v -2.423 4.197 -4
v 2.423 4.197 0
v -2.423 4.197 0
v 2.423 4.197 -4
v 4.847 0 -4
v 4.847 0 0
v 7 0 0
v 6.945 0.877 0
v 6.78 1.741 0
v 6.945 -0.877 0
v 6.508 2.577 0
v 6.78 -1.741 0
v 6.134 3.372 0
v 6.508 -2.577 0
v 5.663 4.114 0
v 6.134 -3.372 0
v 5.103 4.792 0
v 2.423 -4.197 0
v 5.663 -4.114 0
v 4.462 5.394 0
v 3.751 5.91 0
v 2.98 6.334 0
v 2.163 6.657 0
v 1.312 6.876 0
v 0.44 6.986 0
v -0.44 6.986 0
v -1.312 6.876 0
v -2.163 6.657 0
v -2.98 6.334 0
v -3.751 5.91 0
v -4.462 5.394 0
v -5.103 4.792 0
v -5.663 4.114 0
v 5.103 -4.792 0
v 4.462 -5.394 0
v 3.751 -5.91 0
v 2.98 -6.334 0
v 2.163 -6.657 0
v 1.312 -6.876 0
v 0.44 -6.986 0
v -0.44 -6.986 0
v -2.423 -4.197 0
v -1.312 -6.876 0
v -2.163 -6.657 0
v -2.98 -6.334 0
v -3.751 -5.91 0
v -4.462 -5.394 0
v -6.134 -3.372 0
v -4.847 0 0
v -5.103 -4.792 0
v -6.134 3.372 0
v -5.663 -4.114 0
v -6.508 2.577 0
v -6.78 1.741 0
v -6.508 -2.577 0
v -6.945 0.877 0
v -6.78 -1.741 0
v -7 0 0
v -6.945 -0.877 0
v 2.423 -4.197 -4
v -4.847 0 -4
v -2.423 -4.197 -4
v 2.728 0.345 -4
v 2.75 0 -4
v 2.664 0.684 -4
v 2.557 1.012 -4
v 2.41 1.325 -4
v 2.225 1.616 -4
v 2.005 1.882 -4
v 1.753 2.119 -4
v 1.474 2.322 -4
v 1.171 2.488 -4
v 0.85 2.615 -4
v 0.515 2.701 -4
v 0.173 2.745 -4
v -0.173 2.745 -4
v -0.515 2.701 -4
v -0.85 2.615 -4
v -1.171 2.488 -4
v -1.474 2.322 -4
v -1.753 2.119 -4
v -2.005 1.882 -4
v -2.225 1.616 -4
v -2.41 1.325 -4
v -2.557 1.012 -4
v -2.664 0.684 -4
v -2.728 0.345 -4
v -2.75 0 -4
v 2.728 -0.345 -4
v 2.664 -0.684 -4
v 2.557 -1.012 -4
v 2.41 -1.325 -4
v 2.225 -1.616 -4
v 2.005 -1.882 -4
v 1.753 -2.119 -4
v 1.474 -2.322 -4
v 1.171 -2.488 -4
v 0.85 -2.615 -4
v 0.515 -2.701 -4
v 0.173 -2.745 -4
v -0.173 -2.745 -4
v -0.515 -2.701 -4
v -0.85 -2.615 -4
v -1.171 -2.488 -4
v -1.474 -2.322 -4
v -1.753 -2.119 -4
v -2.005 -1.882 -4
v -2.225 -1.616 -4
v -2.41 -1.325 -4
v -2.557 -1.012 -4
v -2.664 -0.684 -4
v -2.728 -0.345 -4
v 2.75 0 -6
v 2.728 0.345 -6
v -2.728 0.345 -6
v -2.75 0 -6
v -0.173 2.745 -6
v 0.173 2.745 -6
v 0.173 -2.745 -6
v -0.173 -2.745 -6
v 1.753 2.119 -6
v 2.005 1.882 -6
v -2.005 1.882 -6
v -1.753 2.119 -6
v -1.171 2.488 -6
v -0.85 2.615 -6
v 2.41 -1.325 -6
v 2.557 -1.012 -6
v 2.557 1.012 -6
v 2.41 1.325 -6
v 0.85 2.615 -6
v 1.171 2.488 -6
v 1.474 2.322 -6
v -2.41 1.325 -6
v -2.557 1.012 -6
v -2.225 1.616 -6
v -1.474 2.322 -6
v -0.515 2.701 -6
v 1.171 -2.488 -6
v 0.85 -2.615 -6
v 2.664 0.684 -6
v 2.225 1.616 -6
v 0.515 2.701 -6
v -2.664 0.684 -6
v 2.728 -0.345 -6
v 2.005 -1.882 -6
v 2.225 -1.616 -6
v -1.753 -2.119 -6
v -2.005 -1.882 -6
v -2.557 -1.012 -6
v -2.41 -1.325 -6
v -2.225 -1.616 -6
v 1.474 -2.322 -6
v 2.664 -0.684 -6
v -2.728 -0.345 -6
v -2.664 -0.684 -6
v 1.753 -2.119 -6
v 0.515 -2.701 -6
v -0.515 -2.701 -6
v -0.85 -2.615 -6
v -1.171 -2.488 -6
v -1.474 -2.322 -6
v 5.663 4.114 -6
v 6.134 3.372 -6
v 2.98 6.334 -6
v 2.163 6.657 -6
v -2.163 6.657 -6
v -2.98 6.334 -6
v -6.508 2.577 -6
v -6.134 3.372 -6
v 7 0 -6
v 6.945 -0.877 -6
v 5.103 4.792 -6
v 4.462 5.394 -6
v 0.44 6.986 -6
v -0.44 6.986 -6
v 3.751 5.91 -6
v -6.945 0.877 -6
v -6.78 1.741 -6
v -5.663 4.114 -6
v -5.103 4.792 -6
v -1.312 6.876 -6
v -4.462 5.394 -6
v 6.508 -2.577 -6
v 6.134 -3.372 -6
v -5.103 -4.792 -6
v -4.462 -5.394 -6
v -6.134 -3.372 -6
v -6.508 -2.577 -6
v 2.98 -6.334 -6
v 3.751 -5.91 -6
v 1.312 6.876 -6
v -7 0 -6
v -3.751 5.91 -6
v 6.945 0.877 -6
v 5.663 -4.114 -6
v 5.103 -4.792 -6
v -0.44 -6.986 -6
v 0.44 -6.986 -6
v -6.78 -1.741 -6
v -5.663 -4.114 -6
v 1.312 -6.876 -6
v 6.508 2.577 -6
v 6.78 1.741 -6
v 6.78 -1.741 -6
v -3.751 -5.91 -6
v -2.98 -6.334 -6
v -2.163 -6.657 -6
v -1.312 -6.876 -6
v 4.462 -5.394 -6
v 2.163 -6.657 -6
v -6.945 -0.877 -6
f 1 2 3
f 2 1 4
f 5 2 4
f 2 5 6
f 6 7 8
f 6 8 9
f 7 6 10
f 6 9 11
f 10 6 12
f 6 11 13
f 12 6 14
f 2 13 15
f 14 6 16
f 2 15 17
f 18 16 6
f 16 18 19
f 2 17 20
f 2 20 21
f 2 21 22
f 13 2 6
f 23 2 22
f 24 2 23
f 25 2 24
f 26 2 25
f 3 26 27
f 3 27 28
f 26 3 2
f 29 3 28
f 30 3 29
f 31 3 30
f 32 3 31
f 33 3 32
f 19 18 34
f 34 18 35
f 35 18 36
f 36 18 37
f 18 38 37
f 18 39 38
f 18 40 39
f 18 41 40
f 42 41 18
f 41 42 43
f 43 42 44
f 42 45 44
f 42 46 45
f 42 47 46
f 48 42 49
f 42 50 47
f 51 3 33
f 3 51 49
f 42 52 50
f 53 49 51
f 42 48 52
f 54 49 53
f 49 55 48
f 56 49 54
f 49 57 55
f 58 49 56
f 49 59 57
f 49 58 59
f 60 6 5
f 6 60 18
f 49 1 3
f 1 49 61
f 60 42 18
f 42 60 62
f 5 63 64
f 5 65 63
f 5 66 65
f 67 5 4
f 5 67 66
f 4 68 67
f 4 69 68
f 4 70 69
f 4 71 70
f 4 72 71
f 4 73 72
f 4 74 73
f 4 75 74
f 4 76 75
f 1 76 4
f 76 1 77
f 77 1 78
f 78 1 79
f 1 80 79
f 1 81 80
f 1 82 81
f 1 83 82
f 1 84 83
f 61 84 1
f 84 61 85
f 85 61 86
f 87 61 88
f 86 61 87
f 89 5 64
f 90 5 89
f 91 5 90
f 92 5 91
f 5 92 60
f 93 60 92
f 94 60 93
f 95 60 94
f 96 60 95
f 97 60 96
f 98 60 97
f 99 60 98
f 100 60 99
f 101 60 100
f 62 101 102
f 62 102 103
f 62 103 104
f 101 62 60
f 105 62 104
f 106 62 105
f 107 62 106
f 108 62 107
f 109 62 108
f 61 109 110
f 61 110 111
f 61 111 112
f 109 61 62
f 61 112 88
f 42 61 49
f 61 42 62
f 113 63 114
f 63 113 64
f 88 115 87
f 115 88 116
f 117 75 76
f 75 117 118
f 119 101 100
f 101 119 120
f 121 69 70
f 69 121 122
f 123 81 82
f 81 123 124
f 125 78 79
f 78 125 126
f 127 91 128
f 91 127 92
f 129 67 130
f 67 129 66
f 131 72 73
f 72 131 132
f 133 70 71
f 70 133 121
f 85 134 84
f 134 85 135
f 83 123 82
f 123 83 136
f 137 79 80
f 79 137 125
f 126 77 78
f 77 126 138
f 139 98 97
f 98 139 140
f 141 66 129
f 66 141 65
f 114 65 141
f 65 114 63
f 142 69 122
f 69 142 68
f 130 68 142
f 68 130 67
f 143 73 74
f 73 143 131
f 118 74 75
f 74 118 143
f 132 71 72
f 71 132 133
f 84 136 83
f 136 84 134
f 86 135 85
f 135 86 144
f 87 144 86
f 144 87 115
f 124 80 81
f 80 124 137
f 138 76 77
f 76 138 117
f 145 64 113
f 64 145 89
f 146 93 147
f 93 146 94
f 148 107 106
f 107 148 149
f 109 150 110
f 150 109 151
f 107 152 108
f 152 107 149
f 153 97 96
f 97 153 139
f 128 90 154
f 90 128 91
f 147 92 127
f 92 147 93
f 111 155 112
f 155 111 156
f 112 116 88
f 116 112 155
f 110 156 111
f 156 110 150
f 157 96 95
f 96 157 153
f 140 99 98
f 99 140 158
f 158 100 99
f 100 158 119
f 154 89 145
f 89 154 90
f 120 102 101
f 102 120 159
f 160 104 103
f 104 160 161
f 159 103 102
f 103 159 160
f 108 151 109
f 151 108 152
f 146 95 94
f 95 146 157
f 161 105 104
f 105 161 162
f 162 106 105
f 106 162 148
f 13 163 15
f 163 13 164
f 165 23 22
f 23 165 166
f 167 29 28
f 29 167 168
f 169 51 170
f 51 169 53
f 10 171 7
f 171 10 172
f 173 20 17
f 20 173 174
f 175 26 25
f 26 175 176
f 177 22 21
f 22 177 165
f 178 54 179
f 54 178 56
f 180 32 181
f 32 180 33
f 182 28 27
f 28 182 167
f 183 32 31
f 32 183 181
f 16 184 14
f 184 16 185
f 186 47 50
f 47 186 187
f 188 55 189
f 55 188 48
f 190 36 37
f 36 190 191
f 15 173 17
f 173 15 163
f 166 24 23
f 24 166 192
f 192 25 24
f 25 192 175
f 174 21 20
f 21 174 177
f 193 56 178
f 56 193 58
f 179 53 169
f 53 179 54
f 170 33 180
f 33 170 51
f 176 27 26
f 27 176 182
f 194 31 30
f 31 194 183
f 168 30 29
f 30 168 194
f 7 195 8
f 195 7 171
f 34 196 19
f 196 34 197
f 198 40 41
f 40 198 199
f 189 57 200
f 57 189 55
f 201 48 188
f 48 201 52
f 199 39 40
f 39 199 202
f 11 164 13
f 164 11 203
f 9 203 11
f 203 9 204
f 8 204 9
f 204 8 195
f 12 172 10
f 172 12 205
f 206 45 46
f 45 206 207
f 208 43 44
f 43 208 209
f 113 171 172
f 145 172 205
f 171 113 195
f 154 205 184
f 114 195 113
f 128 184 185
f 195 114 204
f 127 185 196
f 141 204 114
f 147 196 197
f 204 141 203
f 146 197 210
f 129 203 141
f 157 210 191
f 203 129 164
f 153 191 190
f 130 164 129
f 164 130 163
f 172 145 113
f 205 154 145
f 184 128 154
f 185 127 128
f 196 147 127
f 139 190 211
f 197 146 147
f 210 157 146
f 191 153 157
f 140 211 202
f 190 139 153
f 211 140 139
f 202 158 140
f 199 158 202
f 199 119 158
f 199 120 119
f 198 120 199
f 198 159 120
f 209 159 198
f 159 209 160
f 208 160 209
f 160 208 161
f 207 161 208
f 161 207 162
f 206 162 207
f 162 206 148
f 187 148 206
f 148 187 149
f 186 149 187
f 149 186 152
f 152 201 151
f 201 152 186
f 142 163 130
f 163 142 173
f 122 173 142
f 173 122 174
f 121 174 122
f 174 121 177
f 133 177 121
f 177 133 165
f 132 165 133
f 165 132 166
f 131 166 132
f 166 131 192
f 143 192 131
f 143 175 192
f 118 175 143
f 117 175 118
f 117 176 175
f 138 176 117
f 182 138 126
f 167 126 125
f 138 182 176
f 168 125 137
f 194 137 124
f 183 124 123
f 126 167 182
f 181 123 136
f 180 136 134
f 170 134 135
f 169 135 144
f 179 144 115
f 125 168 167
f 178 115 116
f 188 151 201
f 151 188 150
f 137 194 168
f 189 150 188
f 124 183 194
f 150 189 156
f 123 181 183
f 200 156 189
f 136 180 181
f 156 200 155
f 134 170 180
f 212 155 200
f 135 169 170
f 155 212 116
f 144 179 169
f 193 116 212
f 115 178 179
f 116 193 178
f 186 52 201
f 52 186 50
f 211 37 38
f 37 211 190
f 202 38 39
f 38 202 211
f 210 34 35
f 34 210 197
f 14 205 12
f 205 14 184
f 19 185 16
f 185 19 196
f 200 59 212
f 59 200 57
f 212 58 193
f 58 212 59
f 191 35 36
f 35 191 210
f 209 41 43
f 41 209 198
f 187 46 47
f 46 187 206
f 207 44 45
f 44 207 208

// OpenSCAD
$fn = 50;

difference() {
	union() {
		translate(v = [0, 0, -6.0]) {
			cylinder(h = 6.0, r = 7.0);
		}
	}
	union() {
		translate(v = [0, 0, 0]) {
			rotate(a = [0, 0, 0]) {
				difference() {
					union() {
						translate(v = [0, 0, -4]) {
							linear_extrude(height = 4) {
								polygon(points = [[4.8468, 0.0], [2.4234000000000004, 4.197451927062417], [-2.423399999999999, 4.197451927062417], [-4.8468, 5.935618106107392e-16], [-2.423400000000002, -4.197451927062416], [2.423399999999997, -4.197451927062419]]);
							}
						}
					}
					union();
				}
			}
		}
		#translate(v = [0, 0, -100.0]) {
			cylinder(h = 200, r = 2.75);
		}
	}
}
